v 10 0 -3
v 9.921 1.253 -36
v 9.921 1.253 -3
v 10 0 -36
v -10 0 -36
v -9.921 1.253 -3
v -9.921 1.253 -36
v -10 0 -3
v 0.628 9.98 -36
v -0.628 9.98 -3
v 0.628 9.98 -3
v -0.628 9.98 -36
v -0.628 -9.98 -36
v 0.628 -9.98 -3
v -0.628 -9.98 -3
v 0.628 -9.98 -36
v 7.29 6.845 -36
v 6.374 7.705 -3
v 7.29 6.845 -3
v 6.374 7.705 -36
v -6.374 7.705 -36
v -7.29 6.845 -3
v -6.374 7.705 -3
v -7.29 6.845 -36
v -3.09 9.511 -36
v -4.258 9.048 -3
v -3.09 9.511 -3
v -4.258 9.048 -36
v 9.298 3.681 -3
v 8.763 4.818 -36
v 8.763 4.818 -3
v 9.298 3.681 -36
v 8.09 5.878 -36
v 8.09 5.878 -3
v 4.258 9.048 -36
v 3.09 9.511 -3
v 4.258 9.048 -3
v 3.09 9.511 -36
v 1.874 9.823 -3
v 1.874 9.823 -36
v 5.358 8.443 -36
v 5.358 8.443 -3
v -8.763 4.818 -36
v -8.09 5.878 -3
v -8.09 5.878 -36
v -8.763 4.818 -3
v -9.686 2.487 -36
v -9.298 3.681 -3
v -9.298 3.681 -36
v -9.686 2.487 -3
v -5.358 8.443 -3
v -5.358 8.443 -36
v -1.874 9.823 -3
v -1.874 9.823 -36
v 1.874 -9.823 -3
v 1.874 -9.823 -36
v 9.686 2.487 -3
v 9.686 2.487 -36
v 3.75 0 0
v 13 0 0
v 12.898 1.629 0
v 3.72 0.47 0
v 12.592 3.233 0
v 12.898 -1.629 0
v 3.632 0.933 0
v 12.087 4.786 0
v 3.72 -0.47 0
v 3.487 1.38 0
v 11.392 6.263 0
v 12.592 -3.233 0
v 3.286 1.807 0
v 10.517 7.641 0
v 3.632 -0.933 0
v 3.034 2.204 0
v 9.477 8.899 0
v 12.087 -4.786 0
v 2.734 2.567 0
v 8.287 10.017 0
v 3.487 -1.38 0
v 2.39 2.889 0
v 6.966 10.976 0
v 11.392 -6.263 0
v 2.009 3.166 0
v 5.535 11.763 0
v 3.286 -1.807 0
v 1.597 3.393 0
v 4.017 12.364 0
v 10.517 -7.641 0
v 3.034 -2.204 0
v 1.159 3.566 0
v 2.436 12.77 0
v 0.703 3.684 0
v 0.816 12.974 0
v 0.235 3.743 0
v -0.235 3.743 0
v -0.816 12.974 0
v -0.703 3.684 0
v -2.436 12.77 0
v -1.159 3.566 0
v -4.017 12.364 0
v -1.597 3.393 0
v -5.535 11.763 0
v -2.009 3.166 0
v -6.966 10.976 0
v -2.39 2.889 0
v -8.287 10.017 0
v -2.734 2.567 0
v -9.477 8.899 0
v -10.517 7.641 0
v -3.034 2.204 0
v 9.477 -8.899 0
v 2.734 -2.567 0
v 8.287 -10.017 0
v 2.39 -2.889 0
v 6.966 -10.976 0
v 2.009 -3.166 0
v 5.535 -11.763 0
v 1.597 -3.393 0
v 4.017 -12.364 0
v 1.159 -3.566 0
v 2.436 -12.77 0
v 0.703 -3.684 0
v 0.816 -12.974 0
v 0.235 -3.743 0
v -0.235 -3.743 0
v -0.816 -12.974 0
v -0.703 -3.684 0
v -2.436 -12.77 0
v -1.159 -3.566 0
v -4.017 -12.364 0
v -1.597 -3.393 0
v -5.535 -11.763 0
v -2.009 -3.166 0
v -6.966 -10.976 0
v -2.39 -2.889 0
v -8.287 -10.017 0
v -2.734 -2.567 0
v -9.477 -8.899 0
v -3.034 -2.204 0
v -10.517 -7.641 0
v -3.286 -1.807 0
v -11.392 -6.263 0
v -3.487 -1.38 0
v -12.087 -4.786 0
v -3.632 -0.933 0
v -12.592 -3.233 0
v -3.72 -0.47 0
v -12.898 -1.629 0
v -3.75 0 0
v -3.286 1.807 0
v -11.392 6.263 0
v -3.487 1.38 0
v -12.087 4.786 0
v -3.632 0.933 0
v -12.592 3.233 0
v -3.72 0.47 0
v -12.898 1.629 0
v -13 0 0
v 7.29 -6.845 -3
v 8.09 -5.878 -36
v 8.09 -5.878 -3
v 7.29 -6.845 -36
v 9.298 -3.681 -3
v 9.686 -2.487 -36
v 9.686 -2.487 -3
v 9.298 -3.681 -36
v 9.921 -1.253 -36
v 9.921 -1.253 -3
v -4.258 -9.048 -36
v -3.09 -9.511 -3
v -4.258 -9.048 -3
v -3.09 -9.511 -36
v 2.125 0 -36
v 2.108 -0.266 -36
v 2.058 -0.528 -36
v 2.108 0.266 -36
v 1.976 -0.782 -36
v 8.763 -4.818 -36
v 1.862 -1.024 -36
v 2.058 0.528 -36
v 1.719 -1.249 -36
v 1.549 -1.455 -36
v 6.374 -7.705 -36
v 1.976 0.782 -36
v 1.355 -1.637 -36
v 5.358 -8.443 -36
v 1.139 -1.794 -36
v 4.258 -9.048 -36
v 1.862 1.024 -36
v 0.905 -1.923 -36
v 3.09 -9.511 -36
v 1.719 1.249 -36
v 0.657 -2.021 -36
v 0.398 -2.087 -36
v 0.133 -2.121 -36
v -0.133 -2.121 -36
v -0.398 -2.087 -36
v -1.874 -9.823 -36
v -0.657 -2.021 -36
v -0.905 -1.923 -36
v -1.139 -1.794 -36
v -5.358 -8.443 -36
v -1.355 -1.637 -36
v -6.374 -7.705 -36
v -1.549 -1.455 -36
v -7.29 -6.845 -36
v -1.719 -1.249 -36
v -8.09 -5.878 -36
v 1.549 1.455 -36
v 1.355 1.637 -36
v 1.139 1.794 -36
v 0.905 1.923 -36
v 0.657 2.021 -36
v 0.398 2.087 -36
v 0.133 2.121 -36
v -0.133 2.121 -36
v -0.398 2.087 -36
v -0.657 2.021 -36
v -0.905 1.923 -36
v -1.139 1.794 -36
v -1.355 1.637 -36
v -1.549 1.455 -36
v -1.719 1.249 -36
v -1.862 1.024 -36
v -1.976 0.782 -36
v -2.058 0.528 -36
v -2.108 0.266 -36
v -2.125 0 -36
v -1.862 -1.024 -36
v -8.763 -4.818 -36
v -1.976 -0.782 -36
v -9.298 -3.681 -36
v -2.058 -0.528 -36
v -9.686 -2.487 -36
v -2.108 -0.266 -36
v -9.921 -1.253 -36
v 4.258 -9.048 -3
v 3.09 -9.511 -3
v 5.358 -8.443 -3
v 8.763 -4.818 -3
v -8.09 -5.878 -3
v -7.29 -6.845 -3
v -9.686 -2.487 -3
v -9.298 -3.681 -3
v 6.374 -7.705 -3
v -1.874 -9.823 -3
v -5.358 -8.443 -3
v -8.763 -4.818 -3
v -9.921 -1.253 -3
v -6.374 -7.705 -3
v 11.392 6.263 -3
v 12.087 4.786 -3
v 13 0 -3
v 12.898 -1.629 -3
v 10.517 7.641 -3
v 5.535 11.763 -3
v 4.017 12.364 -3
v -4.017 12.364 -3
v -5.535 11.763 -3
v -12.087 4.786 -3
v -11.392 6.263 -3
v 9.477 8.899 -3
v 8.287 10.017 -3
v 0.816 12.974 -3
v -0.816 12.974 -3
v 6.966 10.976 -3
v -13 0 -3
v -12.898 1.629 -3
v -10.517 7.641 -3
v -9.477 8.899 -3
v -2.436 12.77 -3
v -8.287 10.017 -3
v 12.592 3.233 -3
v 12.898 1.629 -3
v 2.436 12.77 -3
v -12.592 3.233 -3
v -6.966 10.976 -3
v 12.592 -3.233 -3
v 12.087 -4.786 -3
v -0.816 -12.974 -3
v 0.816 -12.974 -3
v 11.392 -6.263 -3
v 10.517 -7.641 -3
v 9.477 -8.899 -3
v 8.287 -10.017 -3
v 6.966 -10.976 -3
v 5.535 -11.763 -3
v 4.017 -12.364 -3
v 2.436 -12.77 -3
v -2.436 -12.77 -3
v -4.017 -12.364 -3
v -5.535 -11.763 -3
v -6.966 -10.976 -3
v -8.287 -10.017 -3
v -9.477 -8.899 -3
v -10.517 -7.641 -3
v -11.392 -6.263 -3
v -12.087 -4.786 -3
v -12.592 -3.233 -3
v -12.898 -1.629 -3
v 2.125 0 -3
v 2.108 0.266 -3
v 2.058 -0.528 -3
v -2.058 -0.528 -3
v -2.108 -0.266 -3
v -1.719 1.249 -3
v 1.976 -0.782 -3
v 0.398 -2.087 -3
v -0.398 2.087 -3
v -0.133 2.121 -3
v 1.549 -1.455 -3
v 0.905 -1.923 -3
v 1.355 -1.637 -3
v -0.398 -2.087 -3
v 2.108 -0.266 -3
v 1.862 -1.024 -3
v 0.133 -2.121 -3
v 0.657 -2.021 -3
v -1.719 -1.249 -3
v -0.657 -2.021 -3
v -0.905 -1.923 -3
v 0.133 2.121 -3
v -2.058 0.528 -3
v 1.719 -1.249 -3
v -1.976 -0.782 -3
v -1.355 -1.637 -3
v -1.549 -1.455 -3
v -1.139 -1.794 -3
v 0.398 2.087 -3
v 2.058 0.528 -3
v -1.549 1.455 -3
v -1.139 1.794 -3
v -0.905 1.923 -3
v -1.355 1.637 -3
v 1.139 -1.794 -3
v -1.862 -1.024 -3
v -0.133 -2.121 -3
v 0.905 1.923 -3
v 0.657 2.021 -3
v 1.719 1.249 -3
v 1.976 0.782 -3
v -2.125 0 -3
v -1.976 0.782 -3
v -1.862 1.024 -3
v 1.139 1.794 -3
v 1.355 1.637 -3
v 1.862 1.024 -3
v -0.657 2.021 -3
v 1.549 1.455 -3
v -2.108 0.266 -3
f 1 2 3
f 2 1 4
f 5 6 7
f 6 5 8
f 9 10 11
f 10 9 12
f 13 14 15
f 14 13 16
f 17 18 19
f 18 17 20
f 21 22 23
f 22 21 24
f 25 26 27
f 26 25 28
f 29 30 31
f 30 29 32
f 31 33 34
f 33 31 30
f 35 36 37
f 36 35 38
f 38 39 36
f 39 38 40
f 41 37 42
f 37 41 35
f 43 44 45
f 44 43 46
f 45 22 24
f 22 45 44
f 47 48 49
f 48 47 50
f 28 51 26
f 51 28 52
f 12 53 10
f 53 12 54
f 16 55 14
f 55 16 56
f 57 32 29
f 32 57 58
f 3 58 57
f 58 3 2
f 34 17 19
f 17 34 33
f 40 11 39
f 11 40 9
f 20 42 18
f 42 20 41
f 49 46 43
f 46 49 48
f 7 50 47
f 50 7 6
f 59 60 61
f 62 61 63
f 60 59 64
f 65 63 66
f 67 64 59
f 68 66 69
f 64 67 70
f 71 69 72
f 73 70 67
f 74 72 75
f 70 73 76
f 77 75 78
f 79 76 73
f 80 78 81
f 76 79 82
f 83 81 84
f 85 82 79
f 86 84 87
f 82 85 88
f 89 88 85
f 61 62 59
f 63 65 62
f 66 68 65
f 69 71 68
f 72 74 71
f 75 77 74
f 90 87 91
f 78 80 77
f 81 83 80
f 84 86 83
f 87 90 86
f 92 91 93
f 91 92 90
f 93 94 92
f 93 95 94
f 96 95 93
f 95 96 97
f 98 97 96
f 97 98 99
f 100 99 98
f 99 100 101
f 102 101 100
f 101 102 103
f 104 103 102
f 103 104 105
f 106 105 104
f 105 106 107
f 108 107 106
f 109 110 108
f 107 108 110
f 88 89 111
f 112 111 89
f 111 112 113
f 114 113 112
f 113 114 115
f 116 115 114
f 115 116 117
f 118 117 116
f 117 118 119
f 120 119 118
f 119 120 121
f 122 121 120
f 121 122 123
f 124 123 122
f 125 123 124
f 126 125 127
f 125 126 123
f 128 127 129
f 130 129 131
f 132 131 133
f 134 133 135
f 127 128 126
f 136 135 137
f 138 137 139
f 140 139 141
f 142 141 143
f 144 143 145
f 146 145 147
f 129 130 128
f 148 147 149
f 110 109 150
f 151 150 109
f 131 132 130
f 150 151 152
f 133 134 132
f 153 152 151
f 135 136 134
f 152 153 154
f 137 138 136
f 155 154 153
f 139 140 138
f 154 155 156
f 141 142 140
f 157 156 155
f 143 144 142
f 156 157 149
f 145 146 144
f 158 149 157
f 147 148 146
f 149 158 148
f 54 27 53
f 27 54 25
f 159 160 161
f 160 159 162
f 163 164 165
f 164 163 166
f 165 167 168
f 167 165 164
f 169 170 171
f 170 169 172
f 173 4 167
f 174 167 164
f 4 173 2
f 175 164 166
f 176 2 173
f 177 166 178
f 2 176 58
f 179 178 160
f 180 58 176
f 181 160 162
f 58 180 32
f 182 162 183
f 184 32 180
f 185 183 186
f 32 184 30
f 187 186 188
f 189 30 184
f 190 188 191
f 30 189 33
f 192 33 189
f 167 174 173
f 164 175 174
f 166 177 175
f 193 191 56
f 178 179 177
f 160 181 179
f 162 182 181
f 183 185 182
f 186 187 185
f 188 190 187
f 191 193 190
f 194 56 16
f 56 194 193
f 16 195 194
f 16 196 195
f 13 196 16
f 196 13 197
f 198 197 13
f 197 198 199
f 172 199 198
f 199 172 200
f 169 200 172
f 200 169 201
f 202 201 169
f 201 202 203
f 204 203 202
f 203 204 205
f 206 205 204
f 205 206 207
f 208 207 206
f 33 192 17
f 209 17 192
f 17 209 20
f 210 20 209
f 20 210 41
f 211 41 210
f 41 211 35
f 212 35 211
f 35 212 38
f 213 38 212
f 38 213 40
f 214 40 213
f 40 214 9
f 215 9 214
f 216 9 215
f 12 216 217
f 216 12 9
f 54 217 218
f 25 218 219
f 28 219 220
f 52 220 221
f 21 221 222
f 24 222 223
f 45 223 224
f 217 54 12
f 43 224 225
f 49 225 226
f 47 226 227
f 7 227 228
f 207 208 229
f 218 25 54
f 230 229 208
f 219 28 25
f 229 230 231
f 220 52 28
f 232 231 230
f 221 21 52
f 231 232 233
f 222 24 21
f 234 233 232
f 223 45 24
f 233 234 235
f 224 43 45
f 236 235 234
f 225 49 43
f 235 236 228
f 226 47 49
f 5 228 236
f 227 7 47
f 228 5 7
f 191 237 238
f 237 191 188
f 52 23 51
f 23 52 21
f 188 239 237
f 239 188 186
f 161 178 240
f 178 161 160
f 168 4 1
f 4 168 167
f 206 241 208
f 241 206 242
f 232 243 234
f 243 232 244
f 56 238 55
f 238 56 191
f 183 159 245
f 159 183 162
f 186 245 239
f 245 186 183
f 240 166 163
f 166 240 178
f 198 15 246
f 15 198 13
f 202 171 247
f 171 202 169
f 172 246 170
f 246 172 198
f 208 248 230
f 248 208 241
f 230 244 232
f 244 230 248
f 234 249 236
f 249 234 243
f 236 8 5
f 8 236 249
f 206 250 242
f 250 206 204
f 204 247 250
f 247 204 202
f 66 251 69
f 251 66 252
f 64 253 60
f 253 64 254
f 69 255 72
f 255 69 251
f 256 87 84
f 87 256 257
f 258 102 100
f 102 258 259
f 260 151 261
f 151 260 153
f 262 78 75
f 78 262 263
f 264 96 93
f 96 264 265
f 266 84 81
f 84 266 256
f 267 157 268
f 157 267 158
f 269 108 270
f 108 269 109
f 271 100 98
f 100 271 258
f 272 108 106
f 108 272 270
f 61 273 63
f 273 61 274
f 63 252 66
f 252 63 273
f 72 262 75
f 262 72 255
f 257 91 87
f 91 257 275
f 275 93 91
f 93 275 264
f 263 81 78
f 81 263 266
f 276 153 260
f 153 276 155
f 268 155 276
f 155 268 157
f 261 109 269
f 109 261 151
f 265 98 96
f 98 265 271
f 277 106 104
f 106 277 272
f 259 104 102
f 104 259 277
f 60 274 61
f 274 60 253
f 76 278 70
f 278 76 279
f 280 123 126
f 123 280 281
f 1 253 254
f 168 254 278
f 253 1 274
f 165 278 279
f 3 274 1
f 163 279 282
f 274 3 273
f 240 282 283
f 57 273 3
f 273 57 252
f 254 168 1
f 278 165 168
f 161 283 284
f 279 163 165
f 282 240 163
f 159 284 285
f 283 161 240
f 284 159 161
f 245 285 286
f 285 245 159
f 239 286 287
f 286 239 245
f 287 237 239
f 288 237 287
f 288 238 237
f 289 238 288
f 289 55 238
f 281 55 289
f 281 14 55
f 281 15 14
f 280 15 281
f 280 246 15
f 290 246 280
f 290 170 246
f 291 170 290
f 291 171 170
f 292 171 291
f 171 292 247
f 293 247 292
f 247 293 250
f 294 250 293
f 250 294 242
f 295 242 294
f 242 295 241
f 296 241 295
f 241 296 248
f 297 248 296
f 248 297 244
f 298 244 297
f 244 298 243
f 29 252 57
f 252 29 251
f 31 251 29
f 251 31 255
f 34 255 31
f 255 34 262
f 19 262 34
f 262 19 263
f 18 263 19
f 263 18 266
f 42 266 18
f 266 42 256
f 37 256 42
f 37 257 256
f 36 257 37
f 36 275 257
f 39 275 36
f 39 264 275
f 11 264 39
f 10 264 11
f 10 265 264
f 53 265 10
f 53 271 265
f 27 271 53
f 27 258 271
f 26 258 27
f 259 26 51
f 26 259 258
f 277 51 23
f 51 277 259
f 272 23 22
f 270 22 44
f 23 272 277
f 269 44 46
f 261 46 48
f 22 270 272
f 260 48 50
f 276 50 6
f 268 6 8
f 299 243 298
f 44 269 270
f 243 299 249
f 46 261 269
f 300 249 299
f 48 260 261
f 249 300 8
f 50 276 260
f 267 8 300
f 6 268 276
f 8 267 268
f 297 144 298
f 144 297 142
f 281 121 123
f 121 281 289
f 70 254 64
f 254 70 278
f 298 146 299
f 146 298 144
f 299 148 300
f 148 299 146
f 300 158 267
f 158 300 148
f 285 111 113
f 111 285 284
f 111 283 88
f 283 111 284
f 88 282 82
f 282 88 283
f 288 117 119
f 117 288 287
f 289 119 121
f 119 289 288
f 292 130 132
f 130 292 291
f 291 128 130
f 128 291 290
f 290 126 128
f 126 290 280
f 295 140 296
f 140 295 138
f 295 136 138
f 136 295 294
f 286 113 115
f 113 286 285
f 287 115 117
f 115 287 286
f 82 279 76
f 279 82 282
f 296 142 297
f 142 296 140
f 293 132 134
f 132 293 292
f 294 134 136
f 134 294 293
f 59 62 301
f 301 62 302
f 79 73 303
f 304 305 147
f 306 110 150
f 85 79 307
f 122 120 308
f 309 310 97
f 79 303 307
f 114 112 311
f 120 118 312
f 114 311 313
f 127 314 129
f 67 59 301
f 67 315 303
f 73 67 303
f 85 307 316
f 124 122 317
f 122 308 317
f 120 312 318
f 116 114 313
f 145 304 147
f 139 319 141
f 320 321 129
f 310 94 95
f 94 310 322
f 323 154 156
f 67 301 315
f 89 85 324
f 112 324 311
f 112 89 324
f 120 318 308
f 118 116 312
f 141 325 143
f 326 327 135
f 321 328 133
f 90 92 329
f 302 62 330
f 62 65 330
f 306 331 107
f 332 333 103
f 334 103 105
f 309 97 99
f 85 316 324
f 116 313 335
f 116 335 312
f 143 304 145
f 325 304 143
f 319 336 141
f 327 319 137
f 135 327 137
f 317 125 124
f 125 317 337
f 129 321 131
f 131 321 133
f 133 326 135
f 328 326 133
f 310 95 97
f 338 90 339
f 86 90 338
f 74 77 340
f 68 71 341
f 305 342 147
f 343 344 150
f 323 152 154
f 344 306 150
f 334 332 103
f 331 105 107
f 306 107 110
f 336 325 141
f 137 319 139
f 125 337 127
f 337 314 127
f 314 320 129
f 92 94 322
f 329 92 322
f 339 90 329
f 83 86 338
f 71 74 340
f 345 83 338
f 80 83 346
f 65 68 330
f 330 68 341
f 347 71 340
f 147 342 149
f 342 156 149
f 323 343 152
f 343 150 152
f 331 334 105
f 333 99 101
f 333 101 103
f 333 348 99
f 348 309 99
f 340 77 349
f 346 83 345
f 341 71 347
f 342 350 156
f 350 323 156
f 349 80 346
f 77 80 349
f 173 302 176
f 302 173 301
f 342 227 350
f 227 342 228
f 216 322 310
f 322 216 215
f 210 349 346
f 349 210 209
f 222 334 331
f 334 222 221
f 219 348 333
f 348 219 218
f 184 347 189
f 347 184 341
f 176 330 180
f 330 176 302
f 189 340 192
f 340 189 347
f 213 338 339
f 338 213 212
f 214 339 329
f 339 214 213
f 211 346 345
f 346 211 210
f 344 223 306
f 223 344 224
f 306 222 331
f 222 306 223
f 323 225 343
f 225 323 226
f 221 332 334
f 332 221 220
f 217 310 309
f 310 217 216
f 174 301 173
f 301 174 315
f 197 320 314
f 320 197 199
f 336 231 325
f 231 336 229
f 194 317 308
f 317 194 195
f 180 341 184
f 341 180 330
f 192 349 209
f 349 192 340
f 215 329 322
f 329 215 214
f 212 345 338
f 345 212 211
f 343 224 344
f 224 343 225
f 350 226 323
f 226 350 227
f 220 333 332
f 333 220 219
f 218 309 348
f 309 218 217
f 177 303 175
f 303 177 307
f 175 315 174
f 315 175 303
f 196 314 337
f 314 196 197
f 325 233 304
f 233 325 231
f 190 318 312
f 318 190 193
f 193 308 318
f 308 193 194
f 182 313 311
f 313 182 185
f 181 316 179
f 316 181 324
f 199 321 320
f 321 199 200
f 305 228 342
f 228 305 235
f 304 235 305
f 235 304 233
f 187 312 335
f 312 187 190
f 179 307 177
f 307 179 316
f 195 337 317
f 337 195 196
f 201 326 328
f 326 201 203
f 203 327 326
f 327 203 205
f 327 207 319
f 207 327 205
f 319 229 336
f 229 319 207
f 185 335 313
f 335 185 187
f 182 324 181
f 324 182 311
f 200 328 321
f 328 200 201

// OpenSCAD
$fn = 50;


difference() {
	union() {
		translate(v = [0, 0, -36.0000000000]) {
			cylinder(h = 36, r = 10.0000000000);
		}
		translate(v = [0, 0, -3.0000000000]) {
			cylinder(h = 3, r = 13.0000000000);
		}
	}
	union() {
		translate(v = [0, 0, 0]) {
			rotate(a = [0, 0, 0]) {
				difference() {
					union() {
						#translate(v = [0, 0, -36.0000000000]) {
							cylinder(h = 36, r = 2.0000000000);
						}
						#translate(v = [0, 0, -3]) {
							cylinder(h = 3, r = 10.0000000000, r1 = 2.1250000000, r2 = 3.7500000000);
						}
						#translate(v = [0, 0, -36.0000000000]) {
							cylinder(h = 36, r = 2.1250000000);
						}
						#translate(v = [0, 0, -36.0000000000]) {
							cylinder(h = 36, r = 2.0000000000);
						}
					}
					union();
				}
			}
		}
	}
}
